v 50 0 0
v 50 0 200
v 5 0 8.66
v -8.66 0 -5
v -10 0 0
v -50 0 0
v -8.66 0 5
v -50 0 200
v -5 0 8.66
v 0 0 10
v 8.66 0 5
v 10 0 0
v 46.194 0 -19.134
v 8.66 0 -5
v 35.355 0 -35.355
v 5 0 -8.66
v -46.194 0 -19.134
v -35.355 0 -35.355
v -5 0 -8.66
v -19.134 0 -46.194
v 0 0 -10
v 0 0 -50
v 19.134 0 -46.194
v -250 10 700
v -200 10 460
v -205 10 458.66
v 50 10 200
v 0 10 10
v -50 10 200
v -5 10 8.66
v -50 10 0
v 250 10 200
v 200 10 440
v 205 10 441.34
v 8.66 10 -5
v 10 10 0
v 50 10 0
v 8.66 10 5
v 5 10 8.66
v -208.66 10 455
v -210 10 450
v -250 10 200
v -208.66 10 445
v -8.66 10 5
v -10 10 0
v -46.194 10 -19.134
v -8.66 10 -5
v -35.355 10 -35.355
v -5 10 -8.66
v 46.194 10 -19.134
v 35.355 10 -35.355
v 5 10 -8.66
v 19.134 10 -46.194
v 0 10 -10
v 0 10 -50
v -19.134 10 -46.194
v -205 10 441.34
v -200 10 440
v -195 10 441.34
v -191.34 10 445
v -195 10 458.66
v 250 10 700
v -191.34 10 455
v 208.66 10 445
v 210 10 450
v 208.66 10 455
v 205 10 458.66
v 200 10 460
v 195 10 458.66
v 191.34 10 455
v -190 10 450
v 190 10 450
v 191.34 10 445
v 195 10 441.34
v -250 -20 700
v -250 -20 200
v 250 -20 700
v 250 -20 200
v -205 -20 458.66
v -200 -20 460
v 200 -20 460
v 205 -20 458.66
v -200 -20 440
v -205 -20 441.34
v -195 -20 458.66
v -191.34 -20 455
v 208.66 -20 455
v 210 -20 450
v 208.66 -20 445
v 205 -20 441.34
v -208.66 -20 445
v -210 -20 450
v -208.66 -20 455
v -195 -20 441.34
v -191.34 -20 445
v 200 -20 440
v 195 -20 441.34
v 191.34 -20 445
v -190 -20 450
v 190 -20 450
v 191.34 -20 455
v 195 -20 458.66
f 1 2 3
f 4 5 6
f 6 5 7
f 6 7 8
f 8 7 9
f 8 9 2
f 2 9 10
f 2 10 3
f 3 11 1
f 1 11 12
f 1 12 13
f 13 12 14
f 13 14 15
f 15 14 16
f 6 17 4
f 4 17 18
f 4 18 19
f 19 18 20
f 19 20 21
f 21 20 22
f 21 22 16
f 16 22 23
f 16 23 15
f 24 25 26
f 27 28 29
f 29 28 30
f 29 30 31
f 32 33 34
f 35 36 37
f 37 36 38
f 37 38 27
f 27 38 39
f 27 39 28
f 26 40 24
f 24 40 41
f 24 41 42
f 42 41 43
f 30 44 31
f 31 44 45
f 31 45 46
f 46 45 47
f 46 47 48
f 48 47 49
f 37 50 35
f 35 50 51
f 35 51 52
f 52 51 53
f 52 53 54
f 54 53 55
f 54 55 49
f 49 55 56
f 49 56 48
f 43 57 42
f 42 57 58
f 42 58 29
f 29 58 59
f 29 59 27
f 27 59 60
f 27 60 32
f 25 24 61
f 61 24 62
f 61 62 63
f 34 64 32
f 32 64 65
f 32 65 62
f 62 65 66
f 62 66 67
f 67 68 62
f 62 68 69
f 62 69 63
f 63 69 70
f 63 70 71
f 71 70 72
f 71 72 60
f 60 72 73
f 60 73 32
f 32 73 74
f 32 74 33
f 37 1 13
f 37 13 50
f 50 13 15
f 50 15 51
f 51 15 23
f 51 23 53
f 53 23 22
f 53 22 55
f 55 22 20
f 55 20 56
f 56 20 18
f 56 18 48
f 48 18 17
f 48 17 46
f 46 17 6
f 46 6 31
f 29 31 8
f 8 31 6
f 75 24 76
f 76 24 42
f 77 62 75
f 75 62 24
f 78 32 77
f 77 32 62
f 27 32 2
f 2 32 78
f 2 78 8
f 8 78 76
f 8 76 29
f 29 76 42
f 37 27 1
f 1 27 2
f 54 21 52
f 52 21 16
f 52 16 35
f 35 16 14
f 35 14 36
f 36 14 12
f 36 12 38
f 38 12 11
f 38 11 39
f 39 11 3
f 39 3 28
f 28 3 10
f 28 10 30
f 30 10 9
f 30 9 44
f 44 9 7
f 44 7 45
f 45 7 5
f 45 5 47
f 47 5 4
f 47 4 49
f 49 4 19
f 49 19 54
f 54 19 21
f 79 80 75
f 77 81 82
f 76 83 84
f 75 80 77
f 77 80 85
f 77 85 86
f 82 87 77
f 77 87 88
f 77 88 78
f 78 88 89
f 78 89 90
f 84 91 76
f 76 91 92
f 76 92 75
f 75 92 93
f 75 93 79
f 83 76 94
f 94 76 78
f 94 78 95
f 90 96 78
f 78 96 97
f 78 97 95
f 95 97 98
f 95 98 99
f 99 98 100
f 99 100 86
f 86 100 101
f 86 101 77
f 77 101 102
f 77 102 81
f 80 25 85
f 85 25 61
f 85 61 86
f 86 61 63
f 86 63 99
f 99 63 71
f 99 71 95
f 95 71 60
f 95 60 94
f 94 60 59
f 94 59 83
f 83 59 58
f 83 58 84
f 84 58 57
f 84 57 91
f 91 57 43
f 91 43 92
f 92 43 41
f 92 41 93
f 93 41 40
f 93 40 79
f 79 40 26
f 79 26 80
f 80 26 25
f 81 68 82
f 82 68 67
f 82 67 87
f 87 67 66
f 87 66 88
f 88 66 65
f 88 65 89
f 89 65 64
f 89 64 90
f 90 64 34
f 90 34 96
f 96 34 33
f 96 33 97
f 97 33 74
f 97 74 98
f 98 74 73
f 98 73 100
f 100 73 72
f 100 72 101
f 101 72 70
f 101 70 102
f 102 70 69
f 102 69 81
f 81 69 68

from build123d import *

# Parameters (mm, degrees)
SKETCH1_R           = 10
BOSS_EXTRUDE1_DEPTH = 10
SKETCH2_W           = 500
SKETCH2_H           = 500
BOSS_EXTRUDE2_DEPTH = 20
SKETCH3_R           = 10
CUT_EXTRUDE1_DEPTH  = 744.908596536


with BuildPart() as part:
    # Sketch1 → Boss-Extrude1 (new body)
    with BuildSketch(Plane(origin=(0, 0, 0), x_dir=(1, 0, 0), z_dir=(0, 1, 0))):
        with BuildLine():
            Line((-50, 0), (-50, -200))
            Line((-50, -200), (-250, -200))
            Line((-250, -200), (-250, -700))
            Line((-250, -700), (250, -700))
            Line((250, -700), (250, -200))
            Line((250, -200), (50, -200))
            Line((50, -200), (50, 0))
            ThreePointArc((50, 0), (0, 50), (-50, 0))
        make_face()
        with Locations(Location((0, 0, 0), (0, 0, 270))):
            Circle(SKETCH1_R, mode=Mode.SUBTRACT)
    extrude(amount=BOSS_EXTRUDE1_DEPTH)

    # Sketch2 → Boss-Extrude2 (add)
    with BuildSketch(Plane.XZ):
        with Locations((0, 450)):
            Rectangle(SKETCH2_W, SKETCH2_H)
    extrude(amount=BOSS_EXTRUDE2_DEPTH)

    # Sketch3 → Cut-Extrude1 (cut, through all)
    with BuildSketch(Plane(origin=(0, 10, 0), x_dir=(1, 0, 0), z_dir=(0, 1, 0))):
        with Locations(Location((200, -450, 0), (0, 0, 270))):
            Circle(SKETCH3_R)
        with Locations(Location((-200, -450, 0), (0, 0, 90))):
            Circle(SKETCH3_R)
    extrude(amount=-CUT_EXTRUDE1_DEPTH, mode=Mode.SUBTRACT)


solid = part.part
